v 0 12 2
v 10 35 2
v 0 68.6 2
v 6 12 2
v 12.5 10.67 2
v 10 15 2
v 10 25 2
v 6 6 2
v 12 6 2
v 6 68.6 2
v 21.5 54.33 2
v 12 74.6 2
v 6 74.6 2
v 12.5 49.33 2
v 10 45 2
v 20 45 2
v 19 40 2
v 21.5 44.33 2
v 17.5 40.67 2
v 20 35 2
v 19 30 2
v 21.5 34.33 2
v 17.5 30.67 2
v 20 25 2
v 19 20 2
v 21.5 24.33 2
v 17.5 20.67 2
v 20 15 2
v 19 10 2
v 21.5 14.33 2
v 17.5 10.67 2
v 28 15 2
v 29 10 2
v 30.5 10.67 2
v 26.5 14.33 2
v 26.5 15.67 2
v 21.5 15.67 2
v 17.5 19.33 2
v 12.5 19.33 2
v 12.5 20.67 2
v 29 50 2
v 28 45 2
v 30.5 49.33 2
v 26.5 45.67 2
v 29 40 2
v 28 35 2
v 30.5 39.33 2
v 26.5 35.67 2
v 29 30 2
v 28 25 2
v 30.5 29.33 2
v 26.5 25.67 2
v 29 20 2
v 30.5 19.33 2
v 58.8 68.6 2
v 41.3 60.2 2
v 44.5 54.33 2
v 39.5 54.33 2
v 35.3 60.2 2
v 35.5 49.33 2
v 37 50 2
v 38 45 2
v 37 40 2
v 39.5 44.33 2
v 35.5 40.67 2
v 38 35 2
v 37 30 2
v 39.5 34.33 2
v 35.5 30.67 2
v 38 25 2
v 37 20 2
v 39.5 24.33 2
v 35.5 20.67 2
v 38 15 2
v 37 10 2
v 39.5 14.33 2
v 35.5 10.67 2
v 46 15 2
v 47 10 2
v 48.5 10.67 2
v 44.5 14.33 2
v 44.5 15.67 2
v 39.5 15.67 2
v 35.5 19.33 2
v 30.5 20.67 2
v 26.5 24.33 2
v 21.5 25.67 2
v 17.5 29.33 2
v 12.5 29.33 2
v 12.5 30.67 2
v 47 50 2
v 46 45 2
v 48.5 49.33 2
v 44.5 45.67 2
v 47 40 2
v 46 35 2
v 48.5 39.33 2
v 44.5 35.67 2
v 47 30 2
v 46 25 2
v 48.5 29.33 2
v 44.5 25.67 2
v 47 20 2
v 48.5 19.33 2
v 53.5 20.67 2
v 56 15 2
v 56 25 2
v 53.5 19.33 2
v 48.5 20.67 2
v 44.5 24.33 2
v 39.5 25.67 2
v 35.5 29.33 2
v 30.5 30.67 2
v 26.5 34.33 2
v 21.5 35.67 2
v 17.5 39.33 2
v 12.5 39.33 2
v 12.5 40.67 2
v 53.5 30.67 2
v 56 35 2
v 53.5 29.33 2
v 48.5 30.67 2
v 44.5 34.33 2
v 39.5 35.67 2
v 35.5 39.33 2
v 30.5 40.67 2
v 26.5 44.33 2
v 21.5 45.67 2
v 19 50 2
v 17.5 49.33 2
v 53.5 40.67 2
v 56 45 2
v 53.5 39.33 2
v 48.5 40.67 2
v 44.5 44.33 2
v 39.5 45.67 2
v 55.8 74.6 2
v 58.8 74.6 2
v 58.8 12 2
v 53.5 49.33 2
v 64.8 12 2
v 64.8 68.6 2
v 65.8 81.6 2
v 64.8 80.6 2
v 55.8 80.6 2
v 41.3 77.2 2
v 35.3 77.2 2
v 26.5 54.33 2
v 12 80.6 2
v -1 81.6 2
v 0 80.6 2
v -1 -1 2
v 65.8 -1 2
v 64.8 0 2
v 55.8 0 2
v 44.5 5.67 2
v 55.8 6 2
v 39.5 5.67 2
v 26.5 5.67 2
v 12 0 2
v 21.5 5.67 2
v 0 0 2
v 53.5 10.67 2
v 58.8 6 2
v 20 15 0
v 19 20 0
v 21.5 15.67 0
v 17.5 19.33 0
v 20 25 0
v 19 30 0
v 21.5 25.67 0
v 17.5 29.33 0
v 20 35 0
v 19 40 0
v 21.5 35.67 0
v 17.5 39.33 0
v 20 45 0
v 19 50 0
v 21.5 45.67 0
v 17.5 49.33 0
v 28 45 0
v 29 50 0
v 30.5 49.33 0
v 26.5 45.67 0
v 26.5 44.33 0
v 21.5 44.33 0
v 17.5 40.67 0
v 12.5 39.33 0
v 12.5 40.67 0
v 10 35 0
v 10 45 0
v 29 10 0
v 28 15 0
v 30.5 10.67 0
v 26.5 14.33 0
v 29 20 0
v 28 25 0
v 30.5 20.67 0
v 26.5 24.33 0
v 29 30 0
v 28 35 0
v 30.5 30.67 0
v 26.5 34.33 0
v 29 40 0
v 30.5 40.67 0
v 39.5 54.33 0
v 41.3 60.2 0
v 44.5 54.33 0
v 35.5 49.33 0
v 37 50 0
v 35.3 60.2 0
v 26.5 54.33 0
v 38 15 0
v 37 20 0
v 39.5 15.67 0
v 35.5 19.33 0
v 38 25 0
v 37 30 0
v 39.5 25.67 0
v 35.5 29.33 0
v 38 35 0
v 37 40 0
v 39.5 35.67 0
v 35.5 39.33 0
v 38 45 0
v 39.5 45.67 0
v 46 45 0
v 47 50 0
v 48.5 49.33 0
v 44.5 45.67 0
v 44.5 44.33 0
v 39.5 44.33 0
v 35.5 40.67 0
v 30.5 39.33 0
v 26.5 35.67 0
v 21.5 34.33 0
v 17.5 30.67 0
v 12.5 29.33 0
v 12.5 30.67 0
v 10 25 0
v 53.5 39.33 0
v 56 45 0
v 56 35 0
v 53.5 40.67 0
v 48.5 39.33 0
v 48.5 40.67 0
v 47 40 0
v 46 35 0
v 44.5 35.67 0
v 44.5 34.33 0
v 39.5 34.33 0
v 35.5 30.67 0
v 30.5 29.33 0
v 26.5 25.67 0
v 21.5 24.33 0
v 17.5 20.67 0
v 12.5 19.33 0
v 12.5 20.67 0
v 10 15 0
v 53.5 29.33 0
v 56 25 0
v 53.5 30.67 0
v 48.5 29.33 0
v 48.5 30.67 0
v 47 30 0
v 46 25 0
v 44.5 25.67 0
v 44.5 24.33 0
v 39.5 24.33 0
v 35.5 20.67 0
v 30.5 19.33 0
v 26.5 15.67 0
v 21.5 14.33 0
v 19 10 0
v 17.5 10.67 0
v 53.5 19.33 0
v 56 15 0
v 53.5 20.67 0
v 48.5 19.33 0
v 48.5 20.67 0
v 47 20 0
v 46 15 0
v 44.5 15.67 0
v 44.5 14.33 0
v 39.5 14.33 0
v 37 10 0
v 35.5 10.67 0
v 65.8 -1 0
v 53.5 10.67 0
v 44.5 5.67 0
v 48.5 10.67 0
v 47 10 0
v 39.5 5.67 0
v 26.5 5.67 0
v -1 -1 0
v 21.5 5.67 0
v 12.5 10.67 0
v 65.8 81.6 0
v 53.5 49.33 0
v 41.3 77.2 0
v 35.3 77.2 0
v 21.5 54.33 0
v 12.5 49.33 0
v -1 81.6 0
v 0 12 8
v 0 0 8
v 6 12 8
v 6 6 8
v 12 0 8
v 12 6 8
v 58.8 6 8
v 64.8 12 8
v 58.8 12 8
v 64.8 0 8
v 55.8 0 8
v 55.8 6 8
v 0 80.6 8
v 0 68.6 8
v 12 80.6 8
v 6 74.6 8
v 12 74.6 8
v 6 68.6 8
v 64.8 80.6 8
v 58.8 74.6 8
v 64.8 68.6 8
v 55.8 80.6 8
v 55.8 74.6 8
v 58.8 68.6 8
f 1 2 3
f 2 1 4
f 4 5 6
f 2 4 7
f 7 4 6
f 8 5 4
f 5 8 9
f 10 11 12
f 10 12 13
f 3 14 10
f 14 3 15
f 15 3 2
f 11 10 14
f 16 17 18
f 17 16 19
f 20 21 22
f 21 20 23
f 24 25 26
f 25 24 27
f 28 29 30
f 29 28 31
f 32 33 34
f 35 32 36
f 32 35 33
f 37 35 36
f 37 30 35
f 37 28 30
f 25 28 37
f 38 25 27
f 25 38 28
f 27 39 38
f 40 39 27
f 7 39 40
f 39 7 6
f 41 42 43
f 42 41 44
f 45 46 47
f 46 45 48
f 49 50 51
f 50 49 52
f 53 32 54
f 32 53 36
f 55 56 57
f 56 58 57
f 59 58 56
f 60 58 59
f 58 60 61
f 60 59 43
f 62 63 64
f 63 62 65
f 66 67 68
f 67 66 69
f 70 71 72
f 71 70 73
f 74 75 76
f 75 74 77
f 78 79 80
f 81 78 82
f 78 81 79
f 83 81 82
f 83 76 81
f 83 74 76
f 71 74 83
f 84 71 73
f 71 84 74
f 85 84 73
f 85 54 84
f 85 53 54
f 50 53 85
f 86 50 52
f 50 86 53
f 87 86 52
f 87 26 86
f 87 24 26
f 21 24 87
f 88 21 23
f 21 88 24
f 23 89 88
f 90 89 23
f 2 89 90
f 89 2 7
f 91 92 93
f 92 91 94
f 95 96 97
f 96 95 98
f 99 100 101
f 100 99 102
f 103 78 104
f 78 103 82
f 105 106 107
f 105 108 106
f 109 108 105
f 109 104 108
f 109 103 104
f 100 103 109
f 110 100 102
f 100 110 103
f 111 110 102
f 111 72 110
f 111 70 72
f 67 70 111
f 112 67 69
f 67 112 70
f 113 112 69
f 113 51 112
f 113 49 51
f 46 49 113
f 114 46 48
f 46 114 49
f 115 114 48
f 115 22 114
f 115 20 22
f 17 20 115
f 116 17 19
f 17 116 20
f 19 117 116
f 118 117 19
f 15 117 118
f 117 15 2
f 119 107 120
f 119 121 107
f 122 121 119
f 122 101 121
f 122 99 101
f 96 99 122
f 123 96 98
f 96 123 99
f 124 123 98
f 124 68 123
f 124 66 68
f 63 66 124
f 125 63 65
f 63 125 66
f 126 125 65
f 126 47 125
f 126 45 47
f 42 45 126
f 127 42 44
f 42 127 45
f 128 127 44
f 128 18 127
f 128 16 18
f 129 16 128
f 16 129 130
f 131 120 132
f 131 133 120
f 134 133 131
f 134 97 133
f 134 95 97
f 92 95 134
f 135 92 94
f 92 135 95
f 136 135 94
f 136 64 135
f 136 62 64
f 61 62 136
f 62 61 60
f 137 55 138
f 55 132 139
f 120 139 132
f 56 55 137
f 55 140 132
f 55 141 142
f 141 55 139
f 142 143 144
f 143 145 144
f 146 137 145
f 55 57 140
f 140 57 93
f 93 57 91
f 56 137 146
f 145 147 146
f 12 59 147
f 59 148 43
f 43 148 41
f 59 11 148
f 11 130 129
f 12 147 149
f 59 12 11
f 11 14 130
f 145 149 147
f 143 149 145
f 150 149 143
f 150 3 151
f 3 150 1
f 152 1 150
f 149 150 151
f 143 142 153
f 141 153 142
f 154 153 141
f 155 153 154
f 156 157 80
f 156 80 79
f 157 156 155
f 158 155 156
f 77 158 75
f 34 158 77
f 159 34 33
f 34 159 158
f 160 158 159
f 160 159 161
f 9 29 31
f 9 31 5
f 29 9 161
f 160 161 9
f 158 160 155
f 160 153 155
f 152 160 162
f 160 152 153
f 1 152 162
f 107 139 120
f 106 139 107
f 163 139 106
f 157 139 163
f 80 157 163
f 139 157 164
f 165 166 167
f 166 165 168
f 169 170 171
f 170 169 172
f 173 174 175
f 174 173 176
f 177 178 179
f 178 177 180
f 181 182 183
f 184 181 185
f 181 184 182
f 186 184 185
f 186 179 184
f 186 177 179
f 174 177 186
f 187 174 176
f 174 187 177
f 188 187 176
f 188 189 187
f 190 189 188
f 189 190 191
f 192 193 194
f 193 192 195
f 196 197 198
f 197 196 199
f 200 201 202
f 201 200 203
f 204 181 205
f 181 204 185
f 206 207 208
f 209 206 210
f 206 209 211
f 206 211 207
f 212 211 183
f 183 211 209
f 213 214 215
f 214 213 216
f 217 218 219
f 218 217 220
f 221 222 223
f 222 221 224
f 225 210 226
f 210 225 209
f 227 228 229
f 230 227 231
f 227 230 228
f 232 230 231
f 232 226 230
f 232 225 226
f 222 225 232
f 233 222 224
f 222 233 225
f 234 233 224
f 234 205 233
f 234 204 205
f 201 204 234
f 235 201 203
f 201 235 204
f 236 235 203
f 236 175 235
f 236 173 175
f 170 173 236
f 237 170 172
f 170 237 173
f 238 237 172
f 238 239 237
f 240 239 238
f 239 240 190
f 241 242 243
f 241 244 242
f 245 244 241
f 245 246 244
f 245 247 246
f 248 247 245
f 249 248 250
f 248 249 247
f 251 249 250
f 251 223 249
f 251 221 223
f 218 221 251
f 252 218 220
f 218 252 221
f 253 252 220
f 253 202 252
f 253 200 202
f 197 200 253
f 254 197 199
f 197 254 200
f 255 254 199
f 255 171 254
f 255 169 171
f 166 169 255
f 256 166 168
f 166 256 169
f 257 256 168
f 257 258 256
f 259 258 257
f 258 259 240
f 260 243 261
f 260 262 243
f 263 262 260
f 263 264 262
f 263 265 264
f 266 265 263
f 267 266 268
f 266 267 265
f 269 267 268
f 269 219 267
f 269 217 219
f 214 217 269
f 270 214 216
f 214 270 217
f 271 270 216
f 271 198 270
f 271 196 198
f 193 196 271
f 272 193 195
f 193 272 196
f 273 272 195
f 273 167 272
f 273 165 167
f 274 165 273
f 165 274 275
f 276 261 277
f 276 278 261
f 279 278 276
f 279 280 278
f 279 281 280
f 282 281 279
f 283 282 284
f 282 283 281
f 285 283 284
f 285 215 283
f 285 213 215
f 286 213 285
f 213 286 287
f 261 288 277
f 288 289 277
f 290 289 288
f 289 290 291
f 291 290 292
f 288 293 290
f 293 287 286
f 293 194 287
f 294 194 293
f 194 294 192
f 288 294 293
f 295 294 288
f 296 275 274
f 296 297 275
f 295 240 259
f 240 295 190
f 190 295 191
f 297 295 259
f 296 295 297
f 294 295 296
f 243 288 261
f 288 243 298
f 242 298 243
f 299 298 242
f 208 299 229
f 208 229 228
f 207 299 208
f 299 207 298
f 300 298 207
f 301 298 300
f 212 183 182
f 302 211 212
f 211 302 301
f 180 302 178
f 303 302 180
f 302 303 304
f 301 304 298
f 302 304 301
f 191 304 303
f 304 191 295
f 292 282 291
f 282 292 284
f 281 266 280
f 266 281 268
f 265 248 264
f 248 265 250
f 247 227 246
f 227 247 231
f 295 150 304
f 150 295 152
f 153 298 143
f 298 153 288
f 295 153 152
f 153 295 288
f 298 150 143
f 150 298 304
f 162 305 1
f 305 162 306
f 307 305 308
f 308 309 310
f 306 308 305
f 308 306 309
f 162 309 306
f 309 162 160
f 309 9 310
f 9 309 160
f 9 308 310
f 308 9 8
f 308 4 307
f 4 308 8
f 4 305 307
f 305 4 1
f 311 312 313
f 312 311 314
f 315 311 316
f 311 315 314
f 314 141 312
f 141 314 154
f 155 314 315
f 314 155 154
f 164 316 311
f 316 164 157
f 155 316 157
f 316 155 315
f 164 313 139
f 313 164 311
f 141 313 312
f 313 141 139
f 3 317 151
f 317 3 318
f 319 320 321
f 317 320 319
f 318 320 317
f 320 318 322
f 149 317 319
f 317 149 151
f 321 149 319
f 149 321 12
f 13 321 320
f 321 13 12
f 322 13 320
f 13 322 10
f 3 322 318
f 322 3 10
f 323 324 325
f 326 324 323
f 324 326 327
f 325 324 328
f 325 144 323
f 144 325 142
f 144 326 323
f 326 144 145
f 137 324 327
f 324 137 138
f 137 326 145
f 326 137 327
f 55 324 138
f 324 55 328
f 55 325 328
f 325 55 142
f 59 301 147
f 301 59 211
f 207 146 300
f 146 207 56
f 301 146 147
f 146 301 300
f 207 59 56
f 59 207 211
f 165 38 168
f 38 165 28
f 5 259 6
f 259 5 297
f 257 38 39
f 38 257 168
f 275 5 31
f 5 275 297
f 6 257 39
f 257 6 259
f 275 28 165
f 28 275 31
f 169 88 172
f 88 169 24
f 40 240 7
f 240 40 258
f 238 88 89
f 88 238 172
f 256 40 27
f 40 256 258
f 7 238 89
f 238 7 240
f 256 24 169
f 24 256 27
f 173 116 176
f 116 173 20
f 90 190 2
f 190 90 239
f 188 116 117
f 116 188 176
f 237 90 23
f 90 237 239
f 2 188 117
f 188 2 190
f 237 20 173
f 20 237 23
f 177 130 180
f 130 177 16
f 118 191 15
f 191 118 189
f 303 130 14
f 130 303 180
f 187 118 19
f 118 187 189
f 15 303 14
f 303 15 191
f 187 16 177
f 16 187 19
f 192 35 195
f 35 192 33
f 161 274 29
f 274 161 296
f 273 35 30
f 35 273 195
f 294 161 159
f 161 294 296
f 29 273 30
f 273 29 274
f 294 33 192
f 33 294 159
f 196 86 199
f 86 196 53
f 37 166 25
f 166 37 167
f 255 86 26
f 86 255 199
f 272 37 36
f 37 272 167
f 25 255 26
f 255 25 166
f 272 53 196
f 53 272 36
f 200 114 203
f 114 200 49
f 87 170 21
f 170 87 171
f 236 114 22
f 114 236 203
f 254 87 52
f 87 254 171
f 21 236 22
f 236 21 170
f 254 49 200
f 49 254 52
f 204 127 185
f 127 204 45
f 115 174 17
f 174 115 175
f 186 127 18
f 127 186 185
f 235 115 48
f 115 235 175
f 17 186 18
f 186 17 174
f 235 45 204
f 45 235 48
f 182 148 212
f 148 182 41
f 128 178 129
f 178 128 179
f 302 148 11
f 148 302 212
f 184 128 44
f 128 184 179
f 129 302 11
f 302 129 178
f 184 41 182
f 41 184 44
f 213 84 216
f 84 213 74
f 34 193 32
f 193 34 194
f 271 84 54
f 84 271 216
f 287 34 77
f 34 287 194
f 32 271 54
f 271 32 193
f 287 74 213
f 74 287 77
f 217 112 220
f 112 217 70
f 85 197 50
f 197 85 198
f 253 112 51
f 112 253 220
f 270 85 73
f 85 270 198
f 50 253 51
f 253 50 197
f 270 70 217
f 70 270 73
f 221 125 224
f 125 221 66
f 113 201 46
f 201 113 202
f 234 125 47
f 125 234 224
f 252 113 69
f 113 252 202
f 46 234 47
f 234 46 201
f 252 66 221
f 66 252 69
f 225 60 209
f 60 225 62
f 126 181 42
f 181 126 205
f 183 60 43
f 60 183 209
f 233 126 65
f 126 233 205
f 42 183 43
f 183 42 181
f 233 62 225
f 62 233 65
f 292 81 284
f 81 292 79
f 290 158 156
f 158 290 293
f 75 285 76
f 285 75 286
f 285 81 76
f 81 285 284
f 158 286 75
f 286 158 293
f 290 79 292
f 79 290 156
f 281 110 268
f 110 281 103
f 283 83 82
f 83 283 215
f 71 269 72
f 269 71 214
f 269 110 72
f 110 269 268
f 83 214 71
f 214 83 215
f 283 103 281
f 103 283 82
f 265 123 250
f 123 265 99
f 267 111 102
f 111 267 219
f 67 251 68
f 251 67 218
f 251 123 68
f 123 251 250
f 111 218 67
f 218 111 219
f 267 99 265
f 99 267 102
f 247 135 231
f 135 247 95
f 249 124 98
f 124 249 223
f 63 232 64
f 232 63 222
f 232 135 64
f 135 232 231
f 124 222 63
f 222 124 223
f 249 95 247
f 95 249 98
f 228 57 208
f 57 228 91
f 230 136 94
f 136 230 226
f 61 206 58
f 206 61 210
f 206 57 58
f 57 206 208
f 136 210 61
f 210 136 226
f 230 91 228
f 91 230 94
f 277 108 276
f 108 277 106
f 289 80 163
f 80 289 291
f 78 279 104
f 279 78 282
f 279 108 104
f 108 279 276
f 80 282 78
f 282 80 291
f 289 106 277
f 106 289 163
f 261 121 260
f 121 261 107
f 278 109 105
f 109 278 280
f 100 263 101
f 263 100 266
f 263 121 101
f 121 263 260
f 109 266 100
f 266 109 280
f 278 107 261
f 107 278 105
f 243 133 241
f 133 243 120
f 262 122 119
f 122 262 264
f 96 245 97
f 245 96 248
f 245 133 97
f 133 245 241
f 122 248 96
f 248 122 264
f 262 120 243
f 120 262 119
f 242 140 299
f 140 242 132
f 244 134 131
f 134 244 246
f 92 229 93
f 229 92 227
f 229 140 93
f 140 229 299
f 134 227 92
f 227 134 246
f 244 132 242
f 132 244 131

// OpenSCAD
createTop();

module createTop()
{
  difference(){
    topBox();
    translate([64.8-29.5,80.6-17-3.4,0]) cube([6,17,2]);
    
    translate([15,15,0]) cylinder(2,5,5,$fn=6);
    translate([15,25,0]) cylinder(2,5,5,$fn=6);
    translate([15,35,0]) cylinder(2,5,5,$fn=6);
    translate([15,45,0]) cylinder(2,5,5,$fn=6);
    
    translate([24,10,0]) cylinder(2,5,5,$fn=6);
    translate([24,20,0]) cylinder(2,5,5,$fn=6);
    translate([24,30,0]) cylinder(2,5,5,$fn=6);
    translate([24,40,0]) cylinder(2,5,5,$fn=6);
    translate([24,50,0]) cylinder(2,5,5,$fn=6);
    
    translate([33,15,0]) cylinder(2,5,5,$fn=6);
    translate([33,25,0]) cylinder(2,5,5,$fn=6);
    translate([33,35,0]) cylinder(2,5,5,$fn=6);
    translate([33,45,0]) cylinder(2,5,5,$fn=6);
    
    translate([42,10,0]) cylinder(2,5,5,$fn=6);
    translate([42,20,0]) cylinder(2,5,5,$fn=6);
    translate([42,30,0]) cylinder(2,5,5,$fn=6);
    translate([42,40,0]) cylinder(2,5,5,$fn=6);
    translate([42,50,0]) cylinder(2,5,5,$fn=6);
    
    translate([51,15,0]) cylinder(2,5,5,$fn=6);
    translate([51,25,0]) cylinder(2,5,5,$fn=6);
    translate([51,35,0]) cylinder(2,5,5,$fn=6);
    translate([51,45,0]) cylinder(2,5,5,$fn=6);
  }
}

module topBox()
{
  //grundplatte
  cube([64.8,80.6,2]);
  
  //4 Seitenerweiterungen
  translate([-1,0,0]) cube([1,80.6,2]);
  translate([64.8,0,0]) cube([1,80.6,2]);
  translate([-1,-1,0]) cube([66.8,1,2]);
  translate([-1,80.6,0]) cube([66.8,1,2]);
  
  //4 halterungswürfel
  translate([0,0,2]) cube([6,6,6]);
  translate([6,0,2]) cube([6,6,6]);
  translate([0,6,2]) cube([6,6,6]);
  
  translate([58.8,0,2]) cube([6,6,6]);
  translate([55.8,0,2]) cube([3,6,6]);
  translate([58.8,6,2]) cube([6,6,6]);
  
  translate([0,74.6,2]) cube([6,6,6]);
  translate([6,74.6,2]) cube([6,6,6]);
  translate([0,68.6,2]) cube([6,6,6]);
  
  translate([58.8,74.6,2]) cube([6,6,6]);
  translate([55.8,74.6,2]) cube([3,6,6]);
  translate([58.8,68.6,2]) cube([6,6,6]);
}
